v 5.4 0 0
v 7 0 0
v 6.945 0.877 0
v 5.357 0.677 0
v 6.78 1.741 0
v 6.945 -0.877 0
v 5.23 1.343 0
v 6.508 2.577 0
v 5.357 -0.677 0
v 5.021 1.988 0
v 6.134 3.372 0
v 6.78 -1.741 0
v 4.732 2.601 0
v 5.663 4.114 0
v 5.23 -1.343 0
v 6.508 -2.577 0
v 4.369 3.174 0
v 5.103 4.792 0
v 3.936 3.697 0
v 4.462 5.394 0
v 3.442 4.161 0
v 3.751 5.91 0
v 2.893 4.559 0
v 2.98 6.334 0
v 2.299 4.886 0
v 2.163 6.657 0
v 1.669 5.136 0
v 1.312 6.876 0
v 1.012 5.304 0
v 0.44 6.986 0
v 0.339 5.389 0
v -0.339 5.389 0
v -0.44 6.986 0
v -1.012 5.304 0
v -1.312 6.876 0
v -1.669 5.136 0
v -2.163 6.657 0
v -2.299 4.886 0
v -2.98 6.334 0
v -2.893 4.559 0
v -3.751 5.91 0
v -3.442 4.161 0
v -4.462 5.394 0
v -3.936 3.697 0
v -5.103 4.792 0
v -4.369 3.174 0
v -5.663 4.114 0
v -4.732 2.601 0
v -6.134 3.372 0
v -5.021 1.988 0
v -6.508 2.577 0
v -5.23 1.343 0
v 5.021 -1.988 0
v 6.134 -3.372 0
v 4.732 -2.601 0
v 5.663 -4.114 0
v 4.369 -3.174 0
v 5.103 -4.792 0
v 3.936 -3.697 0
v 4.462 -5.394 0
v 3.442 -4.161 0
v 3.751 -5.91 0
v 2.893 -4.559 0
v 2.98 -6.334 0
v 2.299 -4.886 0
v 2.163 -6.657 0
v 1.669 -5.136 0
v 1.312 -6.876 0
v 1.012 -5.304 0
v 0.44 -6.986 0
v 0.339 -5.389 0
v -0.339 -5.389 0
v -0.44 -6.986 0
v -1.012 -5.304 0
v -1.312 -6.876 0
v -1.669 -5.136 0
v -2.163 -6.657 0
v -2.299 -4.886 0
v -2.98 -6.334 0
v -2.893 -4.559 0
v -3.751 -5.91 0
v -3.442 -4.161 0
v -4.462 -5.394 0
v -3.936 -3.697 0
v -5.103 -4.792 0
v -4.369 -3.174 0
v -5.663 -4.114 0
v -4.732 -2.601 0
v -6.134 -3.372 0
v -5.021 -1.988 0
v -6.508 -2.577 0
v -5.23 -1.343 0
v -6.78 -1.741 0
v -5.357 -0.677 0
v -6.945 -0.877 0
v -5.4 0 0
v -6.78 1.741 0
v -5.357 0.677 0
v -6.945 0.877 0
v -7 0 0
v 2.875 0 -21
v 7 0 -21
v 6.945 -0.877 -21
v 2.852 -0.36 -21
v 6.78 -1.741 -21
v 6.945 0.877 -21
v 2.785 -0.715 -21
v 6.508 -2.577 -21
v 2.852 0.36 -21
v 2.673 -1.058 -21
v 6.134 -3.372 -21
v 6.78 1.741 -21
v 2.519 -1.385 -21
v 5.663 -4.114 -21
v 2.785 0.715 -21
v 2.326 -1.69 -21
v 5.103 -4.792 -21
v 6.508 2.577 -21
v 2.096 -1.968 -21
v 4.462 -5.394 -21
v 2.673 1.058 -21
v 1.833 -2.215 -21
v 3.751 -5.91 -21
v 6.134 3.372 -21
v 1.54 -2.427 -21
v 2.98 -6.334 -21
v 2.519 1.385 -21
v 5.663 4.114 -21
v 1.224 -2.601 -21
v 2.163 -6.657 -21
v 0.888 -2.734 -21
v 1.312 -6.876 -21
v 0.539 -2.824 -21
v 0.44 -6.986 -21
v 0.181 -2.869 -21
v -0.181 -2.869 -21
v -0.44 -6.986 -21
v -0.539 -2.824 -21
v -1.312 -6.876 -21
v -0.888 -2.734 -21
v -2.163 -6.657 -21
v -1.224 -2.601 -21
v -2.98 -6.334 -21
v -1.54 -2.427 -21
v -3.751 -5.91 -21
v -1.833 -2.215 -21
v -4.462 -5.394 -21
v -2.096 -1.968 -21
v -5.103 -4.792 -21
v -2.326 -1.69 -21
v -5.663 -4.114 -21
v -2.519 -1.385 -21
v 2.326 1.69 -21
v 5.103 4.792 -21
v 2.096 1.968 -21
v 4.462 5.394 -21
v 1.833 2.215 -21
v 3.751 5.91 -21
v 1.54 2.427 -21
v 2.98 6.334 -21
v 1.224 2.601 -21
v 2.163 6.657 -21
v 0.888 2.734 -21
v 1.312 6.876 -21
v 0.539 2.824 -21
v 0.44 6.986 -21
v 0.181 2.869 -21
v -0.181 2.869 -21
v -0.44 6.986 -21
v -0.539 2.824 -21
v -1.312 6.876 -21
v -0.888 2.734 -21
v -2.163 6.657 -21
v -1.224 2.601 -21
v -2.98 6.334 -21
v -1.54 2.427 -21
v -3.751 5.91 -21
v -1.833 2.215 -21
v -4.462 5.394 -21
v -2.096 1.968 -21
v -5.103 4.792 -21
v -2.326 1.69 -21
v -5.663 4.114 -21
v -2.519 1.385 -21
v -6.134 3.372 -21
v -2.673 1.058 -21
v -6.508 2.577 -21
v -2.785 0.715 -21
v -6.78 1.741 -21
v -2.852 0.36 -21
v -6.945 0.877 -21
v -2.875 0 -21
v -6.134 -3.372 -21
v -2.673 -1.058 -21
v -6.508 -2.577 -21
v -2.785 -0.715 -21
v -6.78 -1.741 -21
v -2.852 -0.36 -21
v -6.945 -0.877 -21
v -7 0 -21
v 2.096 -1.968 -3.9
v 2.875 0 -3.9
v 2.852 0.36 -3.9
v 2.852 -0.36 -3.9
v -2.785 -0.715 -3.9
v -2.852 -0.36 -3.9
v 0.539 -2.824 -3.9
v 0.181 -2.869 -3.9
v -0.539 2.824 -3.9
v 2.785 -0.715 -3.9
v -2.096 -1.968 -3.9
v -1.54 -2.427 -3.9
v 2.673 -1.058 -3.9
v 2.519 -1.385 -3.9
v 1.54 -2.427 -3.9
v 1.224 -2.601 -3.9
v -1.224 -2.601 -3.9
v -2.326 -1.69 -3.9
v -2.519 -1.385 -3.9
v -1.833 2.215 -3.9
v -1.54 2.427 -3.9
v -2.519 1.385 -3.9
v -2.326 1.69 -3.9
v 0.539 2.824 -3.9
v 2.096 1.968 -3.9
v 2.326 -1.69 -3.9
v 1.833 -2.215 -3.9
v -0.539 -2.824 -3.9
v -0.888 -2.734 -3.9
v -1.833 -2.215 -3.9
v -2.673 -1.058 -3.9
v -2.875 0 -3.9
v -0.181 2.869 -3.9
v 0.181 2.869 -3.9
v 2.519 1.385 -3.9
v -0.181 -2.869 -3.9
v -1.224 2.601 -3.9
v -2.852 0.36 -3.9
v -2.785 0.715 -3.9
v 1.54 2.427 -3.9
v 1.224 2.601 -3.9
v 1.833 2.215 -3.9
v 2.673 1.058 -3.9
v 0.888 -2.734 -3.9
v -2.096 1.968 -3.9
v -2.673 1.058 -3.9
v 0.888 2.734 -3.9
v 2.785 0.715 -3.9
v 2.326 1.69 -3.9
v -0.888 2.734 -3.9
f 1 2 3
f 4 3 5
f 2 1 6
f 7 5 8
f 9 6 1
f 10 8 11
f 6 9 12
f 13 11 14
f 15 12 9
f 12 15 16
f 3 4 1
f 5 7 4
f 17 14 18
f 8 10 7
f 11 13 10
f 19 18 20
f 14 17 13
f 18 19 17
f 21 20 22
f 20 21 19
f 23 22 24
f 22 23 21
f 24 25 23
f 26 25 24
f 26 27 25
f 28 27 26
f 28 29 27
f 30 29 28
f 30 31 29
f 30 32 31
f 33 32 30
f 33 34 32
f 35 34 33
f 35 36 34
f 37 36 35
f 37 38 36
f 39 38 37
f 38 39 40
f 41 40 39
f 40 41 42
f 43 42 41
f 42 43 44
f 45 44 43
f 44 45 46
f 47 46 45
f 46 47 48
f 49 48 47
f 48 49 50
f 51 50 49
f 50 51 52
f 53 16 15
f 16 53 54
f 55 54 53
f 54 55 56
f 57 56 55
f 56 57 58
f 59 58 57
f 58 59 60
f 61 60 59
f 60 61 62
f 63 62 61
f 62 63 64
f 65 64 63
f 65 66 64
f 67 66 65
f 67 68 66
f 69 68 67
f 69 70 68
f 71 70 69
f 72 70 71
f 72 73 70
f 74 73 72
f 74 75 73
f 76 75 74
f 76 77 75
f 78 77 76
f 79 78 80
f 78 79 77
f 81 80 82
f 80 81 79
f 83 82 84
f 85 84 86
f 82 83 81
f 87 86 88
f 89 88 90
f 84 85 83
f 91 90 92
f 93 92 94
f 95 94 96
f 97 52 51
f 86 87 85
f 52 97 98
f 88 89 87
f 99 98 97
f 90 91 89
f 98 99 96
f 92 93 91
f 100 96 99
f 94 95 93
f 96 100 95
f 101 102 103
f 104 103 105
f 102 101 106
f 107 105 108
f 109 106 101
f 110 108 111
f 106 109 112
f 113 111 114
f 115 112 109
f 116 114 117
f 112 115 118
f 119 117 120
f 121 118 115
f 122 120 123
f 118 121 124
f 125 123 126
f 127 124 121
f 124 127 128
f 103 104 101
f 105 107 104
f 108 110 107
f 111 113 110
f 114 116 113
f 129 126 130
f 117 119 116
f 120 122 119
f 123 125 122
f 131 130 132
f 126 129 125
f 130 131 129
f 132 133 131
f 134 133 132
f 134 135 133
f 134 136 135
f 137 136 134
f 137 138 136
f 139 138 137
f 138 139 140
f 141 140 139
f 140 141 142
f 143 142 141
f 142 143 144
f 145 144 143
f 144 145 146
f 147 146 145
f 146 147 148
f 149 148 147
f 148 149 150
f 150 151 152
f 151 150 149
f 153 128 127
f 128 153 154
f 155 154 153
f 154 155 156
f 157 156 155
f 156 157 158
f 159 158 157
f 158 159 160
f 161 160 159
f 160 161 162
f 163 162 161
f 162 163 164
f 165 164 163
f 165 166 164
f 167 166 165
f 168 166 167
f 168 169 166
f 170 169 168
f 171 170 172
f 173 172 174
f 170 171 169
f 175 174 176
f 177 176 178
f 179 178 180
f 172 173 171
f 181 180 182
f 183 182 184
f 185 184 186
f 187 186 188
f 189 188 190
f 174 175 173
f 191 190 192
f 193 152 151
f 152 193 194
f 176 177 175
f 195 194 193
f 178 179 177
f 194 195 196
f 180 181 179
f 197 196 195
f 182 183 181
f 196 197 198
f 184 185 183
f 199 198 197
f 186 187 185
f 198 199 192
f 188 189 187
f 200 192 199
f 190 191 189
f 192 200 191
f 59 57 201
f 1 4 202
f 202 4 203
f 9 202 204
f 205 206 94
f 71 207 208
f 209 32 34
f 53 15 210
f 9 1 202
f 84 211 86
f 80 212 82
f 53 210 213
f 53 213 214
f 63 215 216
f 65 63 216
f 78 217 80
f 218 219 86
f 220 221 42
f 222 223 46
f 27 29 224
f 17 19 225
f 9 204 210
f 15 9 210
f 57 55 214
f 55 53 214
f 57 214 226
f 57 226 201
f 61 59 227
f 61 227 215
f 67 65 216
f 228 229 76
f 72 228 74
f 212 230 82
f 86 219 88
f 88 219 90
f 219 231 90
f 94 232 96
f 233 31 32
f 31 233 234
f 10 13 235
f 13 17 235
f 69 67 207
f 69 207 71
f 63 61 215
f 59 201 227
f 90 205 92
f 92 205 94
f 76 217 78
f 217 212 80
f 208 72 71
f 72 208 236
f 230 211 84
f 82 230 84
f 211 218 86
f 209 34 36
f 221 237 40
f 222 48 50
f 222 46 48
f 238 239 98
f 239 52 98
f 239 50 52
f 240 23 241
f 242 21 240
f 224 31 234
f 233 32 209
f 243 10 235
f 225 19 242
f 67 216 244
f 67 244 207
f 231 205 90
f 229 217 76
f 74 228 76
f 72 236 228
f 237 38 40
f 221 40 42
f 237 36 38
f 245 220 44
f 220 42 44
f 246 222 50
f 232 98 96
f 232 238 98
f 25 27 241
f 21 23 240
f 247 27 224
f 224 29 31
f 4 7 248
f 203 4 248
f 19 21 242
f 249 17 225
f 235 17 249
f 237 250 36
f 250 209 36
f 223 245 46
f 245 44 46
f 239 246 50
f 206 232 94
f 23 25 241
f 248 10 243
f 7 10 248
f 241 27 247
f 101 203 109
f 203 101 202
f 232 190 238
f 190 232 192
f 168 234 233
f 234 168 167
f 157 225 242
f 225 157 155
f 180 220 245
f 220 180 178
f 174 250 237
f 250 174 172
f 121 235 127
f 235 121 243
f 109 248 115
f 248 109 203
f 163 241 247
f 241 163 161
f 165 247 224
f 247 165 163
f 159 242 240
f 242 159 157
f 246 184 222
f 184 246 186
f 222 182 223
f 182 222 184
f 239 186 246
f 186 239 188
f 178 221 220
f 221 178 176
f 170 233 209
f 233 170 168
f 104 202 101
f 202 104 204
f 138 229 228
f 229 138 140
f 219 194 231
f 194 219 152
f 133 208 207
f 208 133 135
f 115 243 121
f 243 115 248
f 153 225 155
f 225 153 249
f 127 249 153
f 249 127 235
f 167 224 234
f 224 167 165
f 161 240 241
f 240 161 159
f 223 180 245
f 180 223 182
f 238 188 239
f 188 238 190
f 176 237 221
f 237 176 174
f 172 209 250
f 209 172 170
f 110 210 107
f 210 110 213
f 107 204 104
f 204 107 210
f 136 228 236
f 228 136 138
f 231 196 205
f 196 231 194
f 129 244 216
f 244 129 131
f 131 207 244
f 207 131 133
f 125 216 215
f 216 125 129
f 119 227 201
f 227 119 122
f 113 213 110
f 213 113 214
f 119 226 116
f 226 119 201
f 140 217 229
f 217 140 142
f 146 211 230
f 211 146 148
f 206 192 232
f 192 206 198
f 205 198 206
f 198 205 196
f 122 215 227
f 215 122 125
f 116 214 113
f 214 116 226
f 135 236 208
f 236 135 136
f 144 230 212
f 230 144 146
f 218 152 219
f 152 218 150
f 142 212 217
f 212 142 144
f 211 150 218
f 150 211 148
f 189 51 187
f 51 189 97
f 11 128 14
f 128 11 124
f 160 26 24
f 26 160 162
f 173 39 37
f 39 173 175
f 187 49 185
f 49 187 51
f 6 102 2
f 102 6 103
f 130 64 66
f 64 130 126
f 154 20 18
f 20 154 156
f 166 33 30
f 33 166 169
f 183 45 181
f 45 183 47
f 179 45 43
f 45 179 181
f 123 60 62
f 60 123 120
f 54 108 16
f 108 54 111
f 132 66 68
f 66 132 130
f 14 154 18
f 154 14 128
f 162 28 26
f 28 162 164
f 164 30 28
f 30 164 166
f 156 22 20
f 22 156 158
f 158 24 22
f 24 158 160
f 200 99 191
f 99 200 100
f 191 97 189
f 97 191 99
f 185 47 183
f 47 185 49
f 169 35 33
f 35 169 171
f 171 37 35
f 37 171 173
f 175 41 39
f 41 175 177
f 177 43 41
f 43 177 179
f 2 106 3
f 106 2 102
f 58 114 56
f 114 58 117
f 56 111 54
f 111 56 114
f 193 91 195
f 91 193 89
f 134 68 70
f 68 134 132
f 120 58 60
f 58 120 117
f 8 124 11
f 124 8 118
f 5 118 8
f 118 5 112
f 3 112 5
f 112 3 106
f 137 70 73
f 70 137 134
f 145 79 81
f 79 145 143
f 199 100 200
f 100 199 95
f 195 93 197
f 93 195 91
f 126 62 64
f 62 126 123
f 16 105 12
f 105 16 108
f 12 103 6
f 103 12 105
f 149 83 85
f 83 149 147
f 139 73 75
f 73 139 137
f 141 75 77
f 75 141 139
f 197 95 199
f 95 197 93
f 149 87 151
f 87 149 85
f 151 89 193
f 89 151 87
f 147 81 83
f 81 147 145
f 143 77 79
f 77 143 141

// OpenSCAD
$fn = 50;


difference() {
	union() {
		translate(v = [0, 0, -21.0000000000]) {
			cylinder(h = 21, r = 7.0000000000);
		}
		cylinder(h = 0, r = 17.0000000000);
	}
	union() {
		translate(v = [0, 0, 0]) {
			rotate(a = [0, 0, 0]) {
				difference() {
					union() {
						#translate(v = [0, 0, -21.0000000000]) {
							cylinder(h = 21, r = 2.6000000000);
						}
						#translate(v = [0, 0, -3.9000000000]) {
							cylinder(h = 3.9000000000, r = 7.0000000000, r1 = 2.8750000000, r2 = 5.4000000000);
						}
						#translate(v = [0, 0, -21.0000000000]) {
							cylinder(h = 21, r = 2.8750000000);
						}
						#translate(v = [0, 0, -21.0000000000]) {
							cylinder(h = 21, r = 2.6000000000);
						}
					}
					union();
				}
			}
		}
	}
}
